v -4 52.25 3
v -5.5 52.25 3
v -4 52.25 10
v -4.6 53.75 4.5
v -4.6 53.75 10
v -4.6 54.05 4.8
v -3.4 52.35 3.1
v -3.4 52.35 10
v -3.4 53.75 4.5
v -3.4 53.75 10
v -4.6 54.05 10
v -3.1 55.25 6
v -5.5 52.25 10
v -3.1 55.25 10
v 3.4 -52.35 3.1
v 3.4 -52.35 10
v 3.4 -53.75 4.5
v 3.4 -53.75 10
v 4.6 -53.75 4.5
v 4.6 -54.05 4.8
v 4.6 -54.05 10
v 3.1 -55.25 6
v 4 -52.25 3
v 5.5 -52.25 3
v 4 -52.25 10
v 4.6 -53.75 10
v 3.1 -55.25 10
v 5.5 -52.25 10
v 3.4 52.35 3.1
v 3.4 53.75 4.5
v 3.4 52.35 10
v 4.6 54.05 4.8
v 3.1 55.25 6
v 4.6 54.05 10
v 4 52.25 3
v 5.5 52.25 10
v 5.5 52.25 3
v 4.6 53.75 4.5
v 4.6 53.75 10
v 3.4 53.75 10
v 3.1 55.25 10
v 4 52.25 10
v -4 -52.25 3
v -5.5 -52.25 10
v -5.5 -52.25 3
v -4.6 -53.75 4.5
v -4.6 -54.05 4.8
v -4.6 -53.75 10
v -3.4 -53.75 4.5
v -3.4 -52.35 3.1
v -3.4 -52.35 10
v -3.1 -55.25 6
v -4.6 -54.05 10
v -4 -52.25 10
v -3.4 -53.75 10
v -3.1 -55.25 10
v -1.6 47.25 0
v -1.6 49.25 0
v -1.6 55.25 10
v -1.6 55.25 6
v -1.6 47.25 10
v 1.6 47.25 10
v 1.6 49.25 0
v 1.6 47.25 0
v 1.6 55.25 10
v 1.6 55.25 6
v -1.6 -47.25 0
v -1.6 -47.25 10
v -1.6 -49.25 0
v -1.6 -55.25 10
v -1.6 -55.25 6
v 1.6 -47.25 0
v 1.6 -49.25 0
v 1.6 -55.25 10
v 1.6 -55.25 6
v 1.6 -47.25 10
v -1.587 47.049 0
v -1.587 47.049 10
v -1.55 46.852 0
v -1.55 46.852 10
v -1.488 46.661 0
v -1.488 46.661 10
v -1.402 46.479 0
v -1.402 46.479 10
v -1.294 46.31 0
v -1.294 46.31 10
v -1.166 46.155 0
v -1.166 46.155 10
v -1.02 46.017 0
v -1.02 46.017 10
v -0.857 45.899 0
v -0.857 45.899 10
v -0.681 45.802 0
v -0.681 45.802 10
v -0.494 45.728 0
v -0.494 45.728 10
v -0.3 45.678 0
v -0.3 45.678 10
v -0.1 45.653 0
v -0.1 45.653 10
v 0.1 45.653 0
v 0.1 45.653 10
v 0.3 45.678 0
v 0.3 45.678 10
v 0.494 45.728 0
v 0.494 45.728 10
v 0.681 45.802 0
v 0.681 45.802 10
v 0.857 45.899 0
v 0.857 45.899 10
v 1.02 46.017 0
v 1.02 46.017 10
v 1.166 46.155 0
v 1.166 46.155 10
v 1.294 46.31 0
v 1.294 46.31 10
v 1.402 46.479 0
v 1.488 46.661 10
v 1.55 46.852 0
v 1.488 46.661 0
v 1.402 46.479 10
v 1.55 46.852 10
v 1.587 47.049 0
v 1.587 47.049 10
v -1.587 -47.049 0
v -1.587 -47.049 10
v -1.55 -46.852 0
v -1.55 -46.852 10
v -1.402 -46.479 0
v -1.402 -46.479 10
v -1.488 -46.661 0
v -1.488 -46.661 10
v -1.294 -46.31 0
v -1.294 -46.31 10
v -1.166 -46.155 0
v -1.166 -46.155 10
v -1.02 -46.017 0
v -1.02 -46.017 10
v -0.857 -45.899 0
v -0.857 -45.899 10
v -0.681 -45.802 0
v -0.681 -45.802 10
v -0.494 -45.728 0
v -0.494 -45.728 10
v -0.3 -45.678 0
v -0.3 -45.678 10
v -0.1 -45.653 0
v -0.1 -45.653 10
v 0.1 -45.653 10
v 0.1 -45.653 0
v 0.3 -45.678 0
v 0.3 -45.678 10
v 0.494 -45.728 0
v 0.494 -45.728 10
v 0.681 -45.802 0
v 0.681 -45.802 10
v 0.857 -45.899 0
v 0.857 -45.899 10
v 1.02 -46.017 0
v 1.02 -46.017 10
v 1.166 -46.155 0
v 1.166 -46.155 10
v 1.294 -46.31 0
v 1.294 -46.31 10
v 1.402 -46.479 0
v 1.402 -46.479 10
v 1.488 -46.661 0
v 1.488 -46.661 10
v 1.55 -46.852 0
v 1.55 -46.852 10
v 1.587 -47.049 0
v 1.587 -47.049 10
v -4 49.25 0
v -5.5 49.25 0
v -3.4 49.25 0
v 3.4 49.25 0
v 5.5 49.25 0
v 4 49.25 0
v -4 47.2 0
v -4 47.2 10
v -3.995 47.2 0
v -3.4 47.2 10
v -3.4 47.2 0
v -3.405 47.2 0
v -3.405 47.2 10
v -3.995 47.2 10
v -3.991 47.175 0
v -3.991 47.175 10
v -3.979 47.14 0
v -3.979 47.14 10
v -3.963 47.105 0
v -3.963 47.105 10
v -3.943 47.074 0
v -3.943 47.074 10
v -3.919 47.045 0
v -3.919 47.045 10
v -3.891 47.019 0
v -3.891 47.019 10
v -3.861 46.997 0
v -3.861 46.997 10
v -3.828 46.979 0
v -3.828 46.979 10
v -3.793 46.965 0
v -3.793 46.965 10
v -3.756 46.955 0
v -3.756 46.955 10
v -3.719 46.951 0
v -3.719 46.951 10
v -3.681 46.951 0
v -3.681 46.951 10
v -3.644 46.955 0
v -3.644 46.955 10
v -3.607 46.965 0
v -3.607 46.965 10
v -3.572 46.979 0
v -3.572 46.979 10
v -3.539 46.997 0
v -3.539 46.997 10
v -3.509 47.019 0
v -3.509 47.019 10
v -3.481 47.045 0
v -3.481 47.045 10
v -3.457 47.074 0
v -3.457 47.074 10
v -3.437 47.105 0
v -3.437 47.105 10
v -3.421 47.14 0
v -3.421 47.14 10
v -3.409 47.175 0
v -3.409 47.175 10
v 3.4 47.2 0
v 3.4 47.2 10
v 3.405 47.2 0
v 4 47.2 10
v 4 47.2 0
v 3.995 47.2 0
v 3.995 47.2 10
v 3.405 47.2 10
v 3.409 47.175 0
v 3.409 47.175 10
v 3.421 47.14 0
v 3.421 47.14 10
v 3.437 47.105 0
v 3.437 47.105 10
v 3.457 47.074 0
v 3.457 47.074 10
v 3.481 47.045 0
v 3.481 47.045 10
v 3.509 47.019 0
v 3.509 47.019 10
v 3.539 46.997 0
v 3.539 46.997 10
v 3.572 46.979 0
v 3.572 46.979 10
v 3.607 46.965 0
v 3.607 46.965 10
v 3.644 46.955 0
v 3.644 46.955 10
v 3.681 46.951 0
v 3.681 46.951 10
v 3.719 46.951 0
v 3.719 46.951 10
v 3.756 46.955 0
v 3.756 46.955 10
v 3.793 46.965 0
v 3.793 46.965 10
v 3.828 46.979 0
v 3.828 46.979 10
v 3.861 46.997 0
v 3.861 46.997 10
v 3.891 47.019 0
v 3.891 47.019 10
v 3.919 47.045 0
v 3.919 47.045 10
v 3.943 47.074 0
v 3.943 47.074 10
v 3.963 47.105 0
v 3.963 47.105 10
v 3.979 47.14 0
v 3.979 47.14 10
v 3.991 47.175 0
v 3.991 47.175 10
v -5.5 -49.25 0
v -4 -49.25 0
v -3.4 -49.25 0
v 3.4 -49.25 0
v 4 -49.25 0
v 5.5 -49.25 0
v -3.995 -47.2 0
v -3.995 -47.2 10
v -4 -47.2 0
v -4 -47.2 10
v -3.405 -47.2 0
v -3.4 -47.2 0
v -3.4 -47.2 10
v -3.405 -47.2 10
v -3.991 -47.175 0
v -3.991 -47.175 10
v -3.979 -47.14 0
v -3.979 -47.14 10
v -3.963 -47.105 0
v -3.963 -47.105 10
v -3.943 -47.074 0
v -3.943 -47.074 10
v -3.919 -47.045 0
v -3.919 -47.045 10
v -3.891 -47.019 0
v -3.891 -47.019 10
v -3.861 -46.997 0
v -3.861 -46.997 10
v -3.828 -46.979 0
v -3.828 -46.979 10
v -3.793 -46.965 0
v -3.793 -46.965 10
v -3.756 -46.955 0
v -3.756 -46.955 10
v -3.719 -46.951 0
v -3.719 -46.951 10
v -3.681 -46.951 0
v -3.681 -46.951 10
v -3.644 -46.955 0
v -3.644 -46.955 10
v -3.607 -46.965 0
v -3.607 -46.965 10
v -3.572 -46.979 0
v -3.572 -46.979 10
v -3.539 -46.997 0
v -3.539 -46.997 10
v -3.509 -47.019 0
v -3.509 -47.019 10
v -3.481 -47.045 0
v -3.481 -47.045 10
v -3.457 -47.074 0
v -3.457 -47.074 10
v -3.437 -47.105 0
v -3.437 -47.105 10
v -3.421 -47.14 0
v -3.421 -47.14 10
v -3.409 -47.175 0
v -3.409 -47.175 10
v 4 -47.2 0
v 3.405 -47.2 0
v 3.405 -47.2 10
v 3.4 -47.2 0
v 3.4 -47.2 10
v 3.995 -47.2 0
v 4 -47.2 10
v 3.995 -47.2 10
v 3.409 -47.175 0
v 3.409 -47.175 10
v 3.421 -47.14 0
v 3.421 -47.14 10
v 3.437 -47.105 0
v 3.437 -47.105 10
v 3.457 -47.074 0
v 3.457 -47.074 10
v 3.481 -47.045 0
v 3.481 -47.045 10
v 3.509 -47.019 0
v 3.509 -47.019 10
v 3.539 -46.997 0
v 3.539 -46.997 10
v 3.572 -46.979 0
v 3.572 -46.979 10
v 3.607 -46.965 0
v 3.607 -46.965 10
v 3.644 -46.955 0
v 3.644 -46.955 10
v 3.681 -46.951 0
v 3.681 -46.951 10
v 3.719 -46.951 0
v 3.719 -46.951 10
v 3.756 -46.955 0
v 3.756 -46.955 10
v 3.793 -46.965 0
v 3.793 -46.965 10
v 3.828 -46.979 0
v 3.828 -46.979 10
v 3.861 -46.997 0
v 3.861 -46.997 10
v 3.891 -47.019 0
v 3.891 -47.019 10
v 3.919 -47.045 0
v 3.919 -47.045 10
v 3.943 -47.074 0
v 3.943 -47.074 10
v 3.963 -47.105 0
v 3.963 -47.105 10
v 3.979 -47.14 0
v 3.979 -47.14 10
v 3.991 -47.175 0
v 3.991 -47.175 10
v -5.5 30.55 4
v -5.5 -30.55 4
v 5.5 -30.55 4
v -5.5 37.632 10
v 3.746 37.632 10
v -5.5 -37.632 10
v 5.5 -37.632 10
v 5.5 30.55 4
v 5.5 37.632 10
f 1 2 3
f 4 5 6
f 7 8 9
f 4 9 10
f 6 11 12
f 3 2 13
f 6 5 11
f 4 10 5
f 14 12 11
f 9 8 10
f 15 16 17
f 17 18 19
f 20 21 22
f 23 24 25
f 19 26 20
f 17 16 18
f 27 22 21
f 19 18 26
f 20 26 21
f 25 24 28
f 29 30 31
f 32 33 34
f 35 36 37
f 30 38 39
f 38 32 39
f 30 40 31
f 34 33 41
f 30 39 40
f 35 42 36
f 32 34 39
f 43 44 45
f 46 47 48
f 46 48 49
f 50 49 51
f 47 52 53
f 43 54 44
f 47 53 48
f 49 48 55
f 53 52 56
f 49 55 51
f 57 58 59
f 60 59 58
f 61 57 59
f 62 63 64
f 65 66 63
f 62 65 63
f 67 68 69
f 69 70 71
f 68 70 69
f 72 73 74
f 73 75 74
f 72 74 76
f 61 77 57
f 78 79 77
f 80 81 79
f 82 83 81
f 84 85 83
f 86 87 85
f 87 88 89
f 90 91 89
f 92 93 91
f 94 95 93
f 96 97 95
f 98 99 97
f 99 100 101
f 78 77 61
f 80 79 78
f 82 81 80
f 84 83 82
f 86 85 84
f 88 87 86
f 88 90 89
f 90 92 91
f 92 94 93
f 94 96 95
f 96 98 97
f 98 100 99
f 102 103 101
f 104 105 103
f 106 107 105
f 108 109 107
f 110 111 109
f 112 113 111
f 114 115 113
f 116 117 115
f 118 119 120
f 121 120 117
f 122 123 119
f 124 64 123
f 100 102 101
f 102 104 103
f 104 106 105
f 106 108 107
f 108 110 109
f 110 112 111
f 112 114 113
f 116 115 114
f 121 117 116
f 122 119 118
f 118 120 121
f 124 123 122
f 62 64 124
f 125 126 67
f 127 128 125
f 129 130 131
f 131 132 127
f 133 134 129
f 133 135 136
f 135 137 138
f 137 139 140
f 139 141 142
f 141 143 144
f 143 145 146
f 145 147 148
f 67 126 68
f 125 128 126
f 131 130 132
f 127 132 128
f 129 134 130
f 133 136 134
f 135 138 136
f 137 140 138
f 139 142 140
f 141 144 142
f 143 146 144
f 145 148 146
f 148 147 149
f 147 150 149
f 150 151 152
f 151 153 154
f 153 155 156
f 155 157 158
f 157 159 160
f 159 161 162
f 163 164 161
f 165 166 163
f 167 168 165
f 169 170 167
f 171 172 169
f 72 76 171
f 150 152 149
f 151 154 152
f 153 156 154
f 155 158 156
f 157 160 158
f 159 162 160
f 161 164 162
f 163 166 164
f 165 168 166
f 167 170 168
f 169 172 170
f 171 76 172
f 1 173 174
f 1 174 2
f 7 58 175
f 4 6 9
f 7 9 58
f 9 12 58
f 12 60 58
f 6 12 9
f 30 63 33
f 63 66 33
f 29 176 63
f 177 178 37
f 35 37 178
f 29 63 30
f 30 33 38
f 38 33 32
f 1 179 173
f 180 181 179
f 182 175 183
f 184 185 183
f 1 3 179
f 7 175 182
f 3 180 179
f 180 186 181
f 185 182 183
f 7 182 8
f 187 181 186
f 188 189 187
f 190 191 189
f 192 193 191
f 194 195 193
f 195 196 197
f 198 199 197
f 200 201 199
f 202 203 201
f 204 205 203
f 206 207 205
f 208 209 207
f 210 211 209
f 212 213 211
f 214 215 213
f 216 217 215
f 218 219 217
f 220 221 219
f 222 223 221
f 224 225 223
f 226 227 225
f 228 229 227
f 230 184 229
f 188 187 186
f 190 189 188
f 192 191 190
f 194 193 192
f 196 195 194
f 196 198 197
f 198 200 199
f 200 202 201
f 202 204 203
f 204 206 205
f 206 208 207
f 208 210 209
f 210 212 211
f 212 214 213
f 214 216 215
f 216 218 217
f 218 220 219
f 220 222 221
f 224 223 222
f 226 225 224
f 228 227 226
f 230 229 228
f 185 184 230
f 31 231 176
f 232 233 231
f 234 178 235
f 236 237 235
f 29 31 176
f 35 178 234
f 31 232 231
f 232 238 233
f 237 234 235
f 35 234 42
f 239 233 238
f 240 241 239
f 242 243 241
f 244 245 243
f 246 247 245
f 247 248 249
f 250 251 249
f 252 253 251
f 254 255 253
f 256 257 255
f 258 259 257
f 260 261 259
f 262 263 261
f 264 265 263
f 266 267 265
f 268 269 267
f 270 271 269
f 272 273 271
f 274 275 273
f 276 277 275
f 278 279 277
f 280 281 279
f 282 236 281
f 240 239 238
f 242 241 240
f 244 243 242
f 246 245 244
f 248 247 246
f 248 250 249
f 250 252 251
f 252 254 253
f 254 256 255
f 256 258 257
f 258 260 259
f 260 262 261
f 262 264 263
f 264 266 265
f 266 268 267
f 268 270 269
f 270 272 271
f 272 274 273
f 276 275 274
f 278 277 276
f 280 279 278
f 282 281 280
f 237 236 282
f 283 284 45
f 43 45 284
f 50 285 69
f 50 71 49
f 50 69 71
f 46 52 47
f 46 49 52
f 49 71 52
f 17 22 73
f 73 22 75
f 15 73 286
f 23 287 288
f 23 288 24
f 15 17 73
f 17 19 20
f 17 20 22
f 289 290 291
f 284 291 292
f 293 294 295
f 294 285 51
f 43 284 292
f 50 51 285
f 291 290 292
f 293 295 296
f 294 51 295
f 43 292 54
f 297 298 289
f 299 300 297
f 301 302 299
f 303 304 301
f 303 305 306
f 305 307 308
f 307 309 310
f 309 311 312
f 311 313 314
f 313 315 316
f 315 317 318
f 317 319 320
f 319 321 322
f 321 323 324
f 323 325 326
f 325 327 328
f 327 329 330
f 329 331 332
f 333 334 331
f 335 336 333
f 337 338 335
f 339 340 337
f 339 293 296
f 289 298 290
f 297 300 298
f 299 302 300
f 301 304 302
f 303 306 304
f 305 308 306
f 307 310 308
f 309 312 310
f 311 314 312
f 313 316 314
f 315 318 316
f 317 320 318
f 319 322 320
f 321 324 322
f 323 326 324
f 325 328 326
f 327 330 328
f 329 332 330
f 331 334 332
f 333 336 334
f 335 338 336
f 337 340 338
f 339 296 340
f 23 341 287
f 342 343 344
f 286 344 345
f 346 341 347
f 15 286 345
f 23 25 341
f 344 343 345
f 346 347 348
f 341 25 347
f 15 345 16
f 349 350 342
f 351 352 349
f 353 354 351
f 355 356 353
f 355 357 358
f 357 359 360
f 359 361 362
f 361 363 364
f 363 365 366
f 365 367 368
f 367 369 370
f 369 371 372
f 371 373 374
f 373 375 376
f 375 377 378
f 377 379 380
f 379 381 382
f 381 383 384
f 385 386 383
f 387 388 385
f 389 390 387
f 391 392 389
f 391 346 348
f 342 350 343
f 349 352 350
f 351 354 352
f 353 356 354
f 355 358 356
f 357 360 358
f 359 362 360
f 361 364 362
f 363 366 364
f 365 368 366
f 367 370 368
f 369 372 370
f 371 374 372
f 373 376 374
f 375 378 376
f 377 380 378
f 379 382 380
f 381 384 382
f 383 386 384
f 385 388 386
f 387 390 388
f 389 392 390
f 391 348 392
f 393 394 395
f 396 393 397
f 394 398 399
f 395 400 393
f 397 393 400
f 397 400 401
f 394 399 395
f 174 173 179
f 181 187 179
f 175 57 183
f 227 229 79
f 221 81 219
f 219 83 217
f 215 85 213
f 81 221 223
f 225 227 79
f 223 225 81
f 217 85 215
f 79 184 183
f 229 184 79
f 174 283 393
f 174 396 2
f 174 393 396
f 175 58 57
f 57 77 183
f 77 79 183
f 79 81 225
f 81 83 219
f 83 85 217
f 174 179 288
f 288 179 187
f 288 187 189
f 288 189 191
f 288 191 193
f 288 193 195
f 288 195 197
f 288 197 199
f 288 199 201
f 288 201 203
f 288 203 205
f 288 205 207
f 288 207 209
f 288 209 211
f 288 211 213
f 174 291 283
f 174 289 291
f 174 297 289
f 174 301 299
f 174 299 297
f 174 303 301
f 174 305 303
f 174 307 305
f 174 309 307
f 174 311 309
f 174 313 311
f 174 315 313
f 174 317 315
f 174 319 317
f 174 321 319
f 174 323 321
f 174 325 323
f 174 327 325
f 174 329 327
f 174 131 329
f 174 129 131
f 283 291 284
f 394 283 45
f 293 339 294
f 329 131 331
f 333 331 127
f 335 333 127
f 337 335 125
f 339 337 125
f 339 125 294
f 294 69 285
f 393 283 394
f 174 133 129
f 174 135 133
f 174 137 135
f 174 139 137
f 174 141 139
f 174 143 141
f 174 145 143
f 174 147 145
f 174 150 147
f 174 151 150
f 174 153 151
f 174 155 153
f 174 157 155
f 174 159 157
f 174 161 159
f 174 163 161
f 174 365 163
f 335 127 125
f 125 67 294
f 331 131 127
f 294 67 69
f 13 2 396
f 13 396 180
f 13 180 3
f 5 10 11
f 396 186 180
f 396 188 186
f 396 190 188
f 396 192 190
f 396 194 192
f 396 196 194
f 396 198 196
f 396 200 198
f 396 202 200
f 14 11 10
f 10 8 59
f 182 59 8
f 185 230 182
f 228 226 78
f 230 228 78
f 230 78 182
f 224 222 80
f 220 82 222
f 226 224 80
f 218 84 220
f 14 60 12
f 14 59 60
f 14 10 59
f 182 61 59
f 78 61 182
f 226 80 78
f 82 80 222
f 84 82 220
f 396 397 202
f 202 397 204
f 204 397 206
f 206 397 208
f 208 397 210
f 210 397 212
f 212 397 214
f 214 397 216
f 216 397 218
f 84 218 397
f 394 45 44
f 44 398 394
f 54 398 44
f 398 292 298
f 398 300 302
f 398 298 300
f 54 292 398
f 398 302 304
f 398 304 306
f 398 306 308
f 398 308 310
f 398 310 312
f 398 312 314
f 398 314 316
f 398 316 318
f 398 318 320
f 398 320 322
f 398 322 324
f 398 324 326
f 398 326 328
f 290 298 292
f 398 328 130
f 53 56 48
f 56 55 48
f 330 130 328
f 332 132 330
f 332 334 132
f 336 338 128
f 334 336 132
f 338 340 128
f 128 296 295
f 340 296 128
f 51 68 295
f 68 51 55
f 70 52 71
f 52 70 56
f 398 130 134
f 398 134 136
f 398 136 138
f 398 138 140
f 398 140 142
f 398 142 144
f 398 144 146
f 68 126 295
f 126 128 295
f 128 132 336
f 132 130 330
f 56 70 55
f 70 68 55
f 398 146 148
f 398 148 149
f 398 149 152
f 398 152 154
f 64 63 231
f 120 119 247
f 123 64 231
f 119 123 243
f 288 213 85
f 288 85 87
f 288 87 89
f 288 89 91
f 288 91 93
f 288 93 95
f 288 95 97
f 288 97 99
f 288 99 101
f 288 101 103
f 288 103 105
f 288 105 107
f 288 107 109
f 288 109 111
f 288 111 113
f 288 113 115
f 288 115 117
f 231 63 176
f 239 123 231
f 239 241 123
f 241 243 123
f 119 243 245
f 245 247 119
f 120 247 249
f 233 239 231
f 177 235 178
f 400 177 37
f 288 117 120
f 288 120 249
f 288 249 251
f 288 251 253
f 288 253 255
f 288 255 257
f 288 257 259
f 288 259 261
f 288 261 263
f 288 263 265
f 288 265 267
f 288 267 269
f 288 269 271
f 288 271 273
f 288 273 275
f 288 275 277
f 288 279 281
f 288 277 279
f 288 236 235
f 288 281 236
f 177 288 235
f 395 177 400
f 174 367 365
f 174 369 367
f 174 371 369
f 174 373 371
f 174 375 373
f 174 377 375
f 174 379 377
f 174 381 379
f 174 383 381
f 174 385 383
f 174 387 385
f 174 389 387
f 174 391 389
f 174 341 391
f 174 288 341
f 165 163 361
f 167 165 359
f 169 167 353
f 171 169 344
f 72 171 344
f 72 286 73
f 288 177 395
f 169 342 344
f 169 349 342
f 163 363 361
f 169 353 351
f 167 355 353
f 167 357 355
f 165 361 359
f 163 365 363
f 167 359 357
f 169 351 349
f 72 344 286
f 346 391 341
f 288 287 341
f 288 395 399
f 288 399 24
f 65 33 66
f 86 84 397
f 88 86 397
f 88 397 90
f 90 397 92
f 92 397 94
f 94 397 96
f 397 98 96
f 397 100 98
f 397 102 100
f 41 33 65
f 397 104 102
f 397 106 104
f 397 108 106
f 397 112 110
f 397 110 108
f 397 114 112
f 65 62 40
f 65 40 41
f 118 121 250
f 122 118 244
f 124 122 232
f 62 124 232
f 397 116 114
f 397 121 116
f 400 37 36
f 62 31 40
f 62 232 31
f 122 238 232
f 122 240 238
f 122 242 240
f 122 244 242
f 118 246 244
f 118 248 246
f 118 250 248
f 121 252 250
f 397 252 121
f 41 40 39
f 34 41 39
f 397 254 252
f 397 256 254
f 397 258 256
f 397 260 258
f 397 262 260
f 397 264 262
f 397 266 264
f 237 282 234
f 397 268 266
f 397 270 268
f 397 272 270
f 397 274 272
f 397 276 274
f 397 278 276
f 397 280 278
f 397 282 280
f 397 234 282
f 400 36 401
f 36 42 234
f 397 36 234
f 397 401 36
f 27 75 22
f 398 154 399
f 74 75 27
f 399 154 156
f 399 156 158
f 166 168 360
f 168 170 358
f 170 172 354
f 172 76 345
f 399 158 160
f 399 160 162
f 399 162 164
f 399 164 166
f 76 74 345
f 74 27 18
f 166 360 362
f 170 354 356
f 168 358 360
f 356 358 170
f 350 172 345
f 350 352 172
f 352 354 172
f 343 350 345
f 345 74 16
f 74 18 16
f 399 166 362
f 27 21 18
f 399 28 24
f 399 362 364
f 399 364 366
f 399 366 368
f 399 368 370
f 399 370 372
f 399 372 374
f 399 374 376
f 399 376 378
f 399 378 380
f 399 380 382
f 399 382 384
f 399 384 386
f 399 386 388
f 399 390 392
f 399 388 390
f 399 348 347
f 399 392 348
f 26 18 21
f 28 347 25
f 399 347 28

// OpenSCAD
$fn = 50;

difference() {
	union() {
		translate(v = [0, 52.25, 0]) {
			rotate(a = [90, 0, 0]) {
				difference() {
					union() {
						translate(v = [-5.5, 0, -3.0]) {
							cube(size = [11.0, 10.0, 110.5]);
						}
					}
					union() {
						translate(v = [0, 0, 0]) {
							rotate(a = [0, 0, 0]) {
								difference() {
									union() {
										translate(v = [0, 10.1, 0]) {
											rotate(a = [90, 0, 0]) {
												linear_extrude(height = 10.2) {
													polygon(points = [[-3.1, -3.1], [-3.1, -3.0], [-4.6, -1.8], [-4.6, -1.5], [-3.4, -1.5], [-3.4, 0], [-5.6, 0], [-5.6, -3.1]]);
												}
											}
										}
										translate(v = [0, 10.1, 0]) {
											rotate(a = [90, 0, 0]) {
												linear_extrude(height = 10.2) {
													polygon(points = [[3.1, -3.1], [3.1, -3.0], [4.6, -1.8], [4.6, -1.5], [3.4, -1.5], [3.4, 0], [5.6, 0], [5.6, -3.1]]);
												}
											}
										}
										translate(v = [-1.5999999999999999, -0.1, -3.1]) {
											cube(size = [3.1999999999999997, 10.2, 8.1]);
										}
										translate(v = [0, 10.1, 5.0]) {
											rotate(a = [90, 0, 0]) {
												cylinder(h = 10.2, r = 1.5999999999999999);
											}
										}
									}
									union();
								}
							}
						}
						translate(v = [0, 0, 104.5]) {
							rotate(a = [0, 180, 0]) {
								difference() {
									union() {
										translate(v = [0, 10.1, 0]) {
											rotate(a = [90, 0, 0]) {
												linear_extrude(height = 10.2) {
													polygon(points = [[-3.1, -3.1], [-3.1, -3.0], [-4.6, -1.8], [-4.6, -1.5], [-3.4, -1.5], [-3.4, 0], [-5.6, 0], [-5.6, -3.1]]);
												}
											}
										}
										translate(v = [0, 10.1, 0]) {
											rotate(a = [90, 0, 0]) {
												linear_extrude(height = 10.2) {
													polygon(points = [[3.1, -3.1], [3.1, -3.0], [4.6, -1.8], [4.6, -1.5], [3.4, -1.5], [3.4, 0], [5.6, 0], [5.6, -3.1]]);
												}
											}
										}
										translate(v = [-1.5999999999999999, -0.1, -3.1]) {
											cube(size = [3.1999999999999997, 10.2, 8.1]);
										}
										translate(v = [0, 10.1, 5.0]) {
											rotate(a = [90, 0, 0]) {
												cylinder(h = 10.2, r = 1.5999999999999999);
											}
										}
									}
									union();
								}
							}
						}
						translate(v = [-5.6, 0, 0]) {
							rotate(a = [90, 0, 90]) {
								linear_extrude(height = 11.2) {
									polygon(points = [[-0.1, -3.1], [6.1, -3.1], [0, 3.0], [-0.1, 3.0]]);
								}
							}
						}
						translate(v = [0, 10.1, 0]) {
							rotate(a = [90, 0, 0]) {
								linear_extrude(height = 10.2) {
									polygon(points = [[-3.4, -0.1], [-4.0, -0.1], [-4.0, 5.05], [-3.4, 5.05]]);
								}
							}
						}
						translate(v = [-3.6999999999999997, 10.1, 5.0]) {
							rotate(a = [90, 0, 0]) {
								cylinder(h = 10.2, r = 0.3);
							}
						}
						translate(v = [0, 10.1, 0]) {
							rotate(a = [90, 0, 0]) {
								linear_extrude(height = 10.2) {
									polygon(points = [[3.4, -0.1], [4.0, -0.1], [4.0, 5.05], [3.4, 5.05]]);
								}
							}
						}
						translate(v = [3.6999999999999997, 10.1, 5.0]) {
							rotate(a = [90, 0, 0]) {
								cylinder(h = 10.2, r = 0.3);
							}
						}
						translate(v = [-5.6, 0, 0]) {
							rotate(a = [90, 0, 90]) {
								linear_extrude(height = 11.2) {
									polygon(points = [[-0.1, 107.6], [6.1, 107.6], [0, 101.5], [-0.1, 101.5]]);
								}
							}
						}
						translate(v = [0, 10.1, 0]) {
							rotate(a = [90, 0, 0]) {
								linear_extrude(height = 10.2) {
									polygon(points = [[-3.4, 104.6], [-4.0, 104.6], [-4.0, 99.45], [-3.4, 99.45]]);
								}
							}
						}
						translate(v = [-3.6999999999999997, 10.1, 99.5]) {
							rotate(a = [90, 0, 0]) {
								cylinder(h = 10.2, r = 0.3);
							}
						}
						translate(v = [0, 10.1, 0]) {
							rotate(a = [90, 0, 0]) {
								linear_extrude(height = 10.2) {
									polygon(points = [[3.4, 104.6], [4.0, 104.6], [4.0, 99.45], [3.4, 99.45]]);
								}
							}
						}
						translate(v = [3.6999999999999997, 10.1, 99.5]) {
							rotate(a = [90, 0, 0]) {
								cylinder(h = 10.2, r = 0.3);
							}
						}
						translate(v = [-5.6, 0, 0]) {
							rotate(a = [90, 0, 90]) {
								linear_extrude(height = 11.2) {
									polygon(points = [[10.1, 14.5], [10.1, 90.0], [4.0, 82.8], [4.0, 21.7]]);
								}
							}
						}
					}
				}
			}
		}
	}
	union();
}
